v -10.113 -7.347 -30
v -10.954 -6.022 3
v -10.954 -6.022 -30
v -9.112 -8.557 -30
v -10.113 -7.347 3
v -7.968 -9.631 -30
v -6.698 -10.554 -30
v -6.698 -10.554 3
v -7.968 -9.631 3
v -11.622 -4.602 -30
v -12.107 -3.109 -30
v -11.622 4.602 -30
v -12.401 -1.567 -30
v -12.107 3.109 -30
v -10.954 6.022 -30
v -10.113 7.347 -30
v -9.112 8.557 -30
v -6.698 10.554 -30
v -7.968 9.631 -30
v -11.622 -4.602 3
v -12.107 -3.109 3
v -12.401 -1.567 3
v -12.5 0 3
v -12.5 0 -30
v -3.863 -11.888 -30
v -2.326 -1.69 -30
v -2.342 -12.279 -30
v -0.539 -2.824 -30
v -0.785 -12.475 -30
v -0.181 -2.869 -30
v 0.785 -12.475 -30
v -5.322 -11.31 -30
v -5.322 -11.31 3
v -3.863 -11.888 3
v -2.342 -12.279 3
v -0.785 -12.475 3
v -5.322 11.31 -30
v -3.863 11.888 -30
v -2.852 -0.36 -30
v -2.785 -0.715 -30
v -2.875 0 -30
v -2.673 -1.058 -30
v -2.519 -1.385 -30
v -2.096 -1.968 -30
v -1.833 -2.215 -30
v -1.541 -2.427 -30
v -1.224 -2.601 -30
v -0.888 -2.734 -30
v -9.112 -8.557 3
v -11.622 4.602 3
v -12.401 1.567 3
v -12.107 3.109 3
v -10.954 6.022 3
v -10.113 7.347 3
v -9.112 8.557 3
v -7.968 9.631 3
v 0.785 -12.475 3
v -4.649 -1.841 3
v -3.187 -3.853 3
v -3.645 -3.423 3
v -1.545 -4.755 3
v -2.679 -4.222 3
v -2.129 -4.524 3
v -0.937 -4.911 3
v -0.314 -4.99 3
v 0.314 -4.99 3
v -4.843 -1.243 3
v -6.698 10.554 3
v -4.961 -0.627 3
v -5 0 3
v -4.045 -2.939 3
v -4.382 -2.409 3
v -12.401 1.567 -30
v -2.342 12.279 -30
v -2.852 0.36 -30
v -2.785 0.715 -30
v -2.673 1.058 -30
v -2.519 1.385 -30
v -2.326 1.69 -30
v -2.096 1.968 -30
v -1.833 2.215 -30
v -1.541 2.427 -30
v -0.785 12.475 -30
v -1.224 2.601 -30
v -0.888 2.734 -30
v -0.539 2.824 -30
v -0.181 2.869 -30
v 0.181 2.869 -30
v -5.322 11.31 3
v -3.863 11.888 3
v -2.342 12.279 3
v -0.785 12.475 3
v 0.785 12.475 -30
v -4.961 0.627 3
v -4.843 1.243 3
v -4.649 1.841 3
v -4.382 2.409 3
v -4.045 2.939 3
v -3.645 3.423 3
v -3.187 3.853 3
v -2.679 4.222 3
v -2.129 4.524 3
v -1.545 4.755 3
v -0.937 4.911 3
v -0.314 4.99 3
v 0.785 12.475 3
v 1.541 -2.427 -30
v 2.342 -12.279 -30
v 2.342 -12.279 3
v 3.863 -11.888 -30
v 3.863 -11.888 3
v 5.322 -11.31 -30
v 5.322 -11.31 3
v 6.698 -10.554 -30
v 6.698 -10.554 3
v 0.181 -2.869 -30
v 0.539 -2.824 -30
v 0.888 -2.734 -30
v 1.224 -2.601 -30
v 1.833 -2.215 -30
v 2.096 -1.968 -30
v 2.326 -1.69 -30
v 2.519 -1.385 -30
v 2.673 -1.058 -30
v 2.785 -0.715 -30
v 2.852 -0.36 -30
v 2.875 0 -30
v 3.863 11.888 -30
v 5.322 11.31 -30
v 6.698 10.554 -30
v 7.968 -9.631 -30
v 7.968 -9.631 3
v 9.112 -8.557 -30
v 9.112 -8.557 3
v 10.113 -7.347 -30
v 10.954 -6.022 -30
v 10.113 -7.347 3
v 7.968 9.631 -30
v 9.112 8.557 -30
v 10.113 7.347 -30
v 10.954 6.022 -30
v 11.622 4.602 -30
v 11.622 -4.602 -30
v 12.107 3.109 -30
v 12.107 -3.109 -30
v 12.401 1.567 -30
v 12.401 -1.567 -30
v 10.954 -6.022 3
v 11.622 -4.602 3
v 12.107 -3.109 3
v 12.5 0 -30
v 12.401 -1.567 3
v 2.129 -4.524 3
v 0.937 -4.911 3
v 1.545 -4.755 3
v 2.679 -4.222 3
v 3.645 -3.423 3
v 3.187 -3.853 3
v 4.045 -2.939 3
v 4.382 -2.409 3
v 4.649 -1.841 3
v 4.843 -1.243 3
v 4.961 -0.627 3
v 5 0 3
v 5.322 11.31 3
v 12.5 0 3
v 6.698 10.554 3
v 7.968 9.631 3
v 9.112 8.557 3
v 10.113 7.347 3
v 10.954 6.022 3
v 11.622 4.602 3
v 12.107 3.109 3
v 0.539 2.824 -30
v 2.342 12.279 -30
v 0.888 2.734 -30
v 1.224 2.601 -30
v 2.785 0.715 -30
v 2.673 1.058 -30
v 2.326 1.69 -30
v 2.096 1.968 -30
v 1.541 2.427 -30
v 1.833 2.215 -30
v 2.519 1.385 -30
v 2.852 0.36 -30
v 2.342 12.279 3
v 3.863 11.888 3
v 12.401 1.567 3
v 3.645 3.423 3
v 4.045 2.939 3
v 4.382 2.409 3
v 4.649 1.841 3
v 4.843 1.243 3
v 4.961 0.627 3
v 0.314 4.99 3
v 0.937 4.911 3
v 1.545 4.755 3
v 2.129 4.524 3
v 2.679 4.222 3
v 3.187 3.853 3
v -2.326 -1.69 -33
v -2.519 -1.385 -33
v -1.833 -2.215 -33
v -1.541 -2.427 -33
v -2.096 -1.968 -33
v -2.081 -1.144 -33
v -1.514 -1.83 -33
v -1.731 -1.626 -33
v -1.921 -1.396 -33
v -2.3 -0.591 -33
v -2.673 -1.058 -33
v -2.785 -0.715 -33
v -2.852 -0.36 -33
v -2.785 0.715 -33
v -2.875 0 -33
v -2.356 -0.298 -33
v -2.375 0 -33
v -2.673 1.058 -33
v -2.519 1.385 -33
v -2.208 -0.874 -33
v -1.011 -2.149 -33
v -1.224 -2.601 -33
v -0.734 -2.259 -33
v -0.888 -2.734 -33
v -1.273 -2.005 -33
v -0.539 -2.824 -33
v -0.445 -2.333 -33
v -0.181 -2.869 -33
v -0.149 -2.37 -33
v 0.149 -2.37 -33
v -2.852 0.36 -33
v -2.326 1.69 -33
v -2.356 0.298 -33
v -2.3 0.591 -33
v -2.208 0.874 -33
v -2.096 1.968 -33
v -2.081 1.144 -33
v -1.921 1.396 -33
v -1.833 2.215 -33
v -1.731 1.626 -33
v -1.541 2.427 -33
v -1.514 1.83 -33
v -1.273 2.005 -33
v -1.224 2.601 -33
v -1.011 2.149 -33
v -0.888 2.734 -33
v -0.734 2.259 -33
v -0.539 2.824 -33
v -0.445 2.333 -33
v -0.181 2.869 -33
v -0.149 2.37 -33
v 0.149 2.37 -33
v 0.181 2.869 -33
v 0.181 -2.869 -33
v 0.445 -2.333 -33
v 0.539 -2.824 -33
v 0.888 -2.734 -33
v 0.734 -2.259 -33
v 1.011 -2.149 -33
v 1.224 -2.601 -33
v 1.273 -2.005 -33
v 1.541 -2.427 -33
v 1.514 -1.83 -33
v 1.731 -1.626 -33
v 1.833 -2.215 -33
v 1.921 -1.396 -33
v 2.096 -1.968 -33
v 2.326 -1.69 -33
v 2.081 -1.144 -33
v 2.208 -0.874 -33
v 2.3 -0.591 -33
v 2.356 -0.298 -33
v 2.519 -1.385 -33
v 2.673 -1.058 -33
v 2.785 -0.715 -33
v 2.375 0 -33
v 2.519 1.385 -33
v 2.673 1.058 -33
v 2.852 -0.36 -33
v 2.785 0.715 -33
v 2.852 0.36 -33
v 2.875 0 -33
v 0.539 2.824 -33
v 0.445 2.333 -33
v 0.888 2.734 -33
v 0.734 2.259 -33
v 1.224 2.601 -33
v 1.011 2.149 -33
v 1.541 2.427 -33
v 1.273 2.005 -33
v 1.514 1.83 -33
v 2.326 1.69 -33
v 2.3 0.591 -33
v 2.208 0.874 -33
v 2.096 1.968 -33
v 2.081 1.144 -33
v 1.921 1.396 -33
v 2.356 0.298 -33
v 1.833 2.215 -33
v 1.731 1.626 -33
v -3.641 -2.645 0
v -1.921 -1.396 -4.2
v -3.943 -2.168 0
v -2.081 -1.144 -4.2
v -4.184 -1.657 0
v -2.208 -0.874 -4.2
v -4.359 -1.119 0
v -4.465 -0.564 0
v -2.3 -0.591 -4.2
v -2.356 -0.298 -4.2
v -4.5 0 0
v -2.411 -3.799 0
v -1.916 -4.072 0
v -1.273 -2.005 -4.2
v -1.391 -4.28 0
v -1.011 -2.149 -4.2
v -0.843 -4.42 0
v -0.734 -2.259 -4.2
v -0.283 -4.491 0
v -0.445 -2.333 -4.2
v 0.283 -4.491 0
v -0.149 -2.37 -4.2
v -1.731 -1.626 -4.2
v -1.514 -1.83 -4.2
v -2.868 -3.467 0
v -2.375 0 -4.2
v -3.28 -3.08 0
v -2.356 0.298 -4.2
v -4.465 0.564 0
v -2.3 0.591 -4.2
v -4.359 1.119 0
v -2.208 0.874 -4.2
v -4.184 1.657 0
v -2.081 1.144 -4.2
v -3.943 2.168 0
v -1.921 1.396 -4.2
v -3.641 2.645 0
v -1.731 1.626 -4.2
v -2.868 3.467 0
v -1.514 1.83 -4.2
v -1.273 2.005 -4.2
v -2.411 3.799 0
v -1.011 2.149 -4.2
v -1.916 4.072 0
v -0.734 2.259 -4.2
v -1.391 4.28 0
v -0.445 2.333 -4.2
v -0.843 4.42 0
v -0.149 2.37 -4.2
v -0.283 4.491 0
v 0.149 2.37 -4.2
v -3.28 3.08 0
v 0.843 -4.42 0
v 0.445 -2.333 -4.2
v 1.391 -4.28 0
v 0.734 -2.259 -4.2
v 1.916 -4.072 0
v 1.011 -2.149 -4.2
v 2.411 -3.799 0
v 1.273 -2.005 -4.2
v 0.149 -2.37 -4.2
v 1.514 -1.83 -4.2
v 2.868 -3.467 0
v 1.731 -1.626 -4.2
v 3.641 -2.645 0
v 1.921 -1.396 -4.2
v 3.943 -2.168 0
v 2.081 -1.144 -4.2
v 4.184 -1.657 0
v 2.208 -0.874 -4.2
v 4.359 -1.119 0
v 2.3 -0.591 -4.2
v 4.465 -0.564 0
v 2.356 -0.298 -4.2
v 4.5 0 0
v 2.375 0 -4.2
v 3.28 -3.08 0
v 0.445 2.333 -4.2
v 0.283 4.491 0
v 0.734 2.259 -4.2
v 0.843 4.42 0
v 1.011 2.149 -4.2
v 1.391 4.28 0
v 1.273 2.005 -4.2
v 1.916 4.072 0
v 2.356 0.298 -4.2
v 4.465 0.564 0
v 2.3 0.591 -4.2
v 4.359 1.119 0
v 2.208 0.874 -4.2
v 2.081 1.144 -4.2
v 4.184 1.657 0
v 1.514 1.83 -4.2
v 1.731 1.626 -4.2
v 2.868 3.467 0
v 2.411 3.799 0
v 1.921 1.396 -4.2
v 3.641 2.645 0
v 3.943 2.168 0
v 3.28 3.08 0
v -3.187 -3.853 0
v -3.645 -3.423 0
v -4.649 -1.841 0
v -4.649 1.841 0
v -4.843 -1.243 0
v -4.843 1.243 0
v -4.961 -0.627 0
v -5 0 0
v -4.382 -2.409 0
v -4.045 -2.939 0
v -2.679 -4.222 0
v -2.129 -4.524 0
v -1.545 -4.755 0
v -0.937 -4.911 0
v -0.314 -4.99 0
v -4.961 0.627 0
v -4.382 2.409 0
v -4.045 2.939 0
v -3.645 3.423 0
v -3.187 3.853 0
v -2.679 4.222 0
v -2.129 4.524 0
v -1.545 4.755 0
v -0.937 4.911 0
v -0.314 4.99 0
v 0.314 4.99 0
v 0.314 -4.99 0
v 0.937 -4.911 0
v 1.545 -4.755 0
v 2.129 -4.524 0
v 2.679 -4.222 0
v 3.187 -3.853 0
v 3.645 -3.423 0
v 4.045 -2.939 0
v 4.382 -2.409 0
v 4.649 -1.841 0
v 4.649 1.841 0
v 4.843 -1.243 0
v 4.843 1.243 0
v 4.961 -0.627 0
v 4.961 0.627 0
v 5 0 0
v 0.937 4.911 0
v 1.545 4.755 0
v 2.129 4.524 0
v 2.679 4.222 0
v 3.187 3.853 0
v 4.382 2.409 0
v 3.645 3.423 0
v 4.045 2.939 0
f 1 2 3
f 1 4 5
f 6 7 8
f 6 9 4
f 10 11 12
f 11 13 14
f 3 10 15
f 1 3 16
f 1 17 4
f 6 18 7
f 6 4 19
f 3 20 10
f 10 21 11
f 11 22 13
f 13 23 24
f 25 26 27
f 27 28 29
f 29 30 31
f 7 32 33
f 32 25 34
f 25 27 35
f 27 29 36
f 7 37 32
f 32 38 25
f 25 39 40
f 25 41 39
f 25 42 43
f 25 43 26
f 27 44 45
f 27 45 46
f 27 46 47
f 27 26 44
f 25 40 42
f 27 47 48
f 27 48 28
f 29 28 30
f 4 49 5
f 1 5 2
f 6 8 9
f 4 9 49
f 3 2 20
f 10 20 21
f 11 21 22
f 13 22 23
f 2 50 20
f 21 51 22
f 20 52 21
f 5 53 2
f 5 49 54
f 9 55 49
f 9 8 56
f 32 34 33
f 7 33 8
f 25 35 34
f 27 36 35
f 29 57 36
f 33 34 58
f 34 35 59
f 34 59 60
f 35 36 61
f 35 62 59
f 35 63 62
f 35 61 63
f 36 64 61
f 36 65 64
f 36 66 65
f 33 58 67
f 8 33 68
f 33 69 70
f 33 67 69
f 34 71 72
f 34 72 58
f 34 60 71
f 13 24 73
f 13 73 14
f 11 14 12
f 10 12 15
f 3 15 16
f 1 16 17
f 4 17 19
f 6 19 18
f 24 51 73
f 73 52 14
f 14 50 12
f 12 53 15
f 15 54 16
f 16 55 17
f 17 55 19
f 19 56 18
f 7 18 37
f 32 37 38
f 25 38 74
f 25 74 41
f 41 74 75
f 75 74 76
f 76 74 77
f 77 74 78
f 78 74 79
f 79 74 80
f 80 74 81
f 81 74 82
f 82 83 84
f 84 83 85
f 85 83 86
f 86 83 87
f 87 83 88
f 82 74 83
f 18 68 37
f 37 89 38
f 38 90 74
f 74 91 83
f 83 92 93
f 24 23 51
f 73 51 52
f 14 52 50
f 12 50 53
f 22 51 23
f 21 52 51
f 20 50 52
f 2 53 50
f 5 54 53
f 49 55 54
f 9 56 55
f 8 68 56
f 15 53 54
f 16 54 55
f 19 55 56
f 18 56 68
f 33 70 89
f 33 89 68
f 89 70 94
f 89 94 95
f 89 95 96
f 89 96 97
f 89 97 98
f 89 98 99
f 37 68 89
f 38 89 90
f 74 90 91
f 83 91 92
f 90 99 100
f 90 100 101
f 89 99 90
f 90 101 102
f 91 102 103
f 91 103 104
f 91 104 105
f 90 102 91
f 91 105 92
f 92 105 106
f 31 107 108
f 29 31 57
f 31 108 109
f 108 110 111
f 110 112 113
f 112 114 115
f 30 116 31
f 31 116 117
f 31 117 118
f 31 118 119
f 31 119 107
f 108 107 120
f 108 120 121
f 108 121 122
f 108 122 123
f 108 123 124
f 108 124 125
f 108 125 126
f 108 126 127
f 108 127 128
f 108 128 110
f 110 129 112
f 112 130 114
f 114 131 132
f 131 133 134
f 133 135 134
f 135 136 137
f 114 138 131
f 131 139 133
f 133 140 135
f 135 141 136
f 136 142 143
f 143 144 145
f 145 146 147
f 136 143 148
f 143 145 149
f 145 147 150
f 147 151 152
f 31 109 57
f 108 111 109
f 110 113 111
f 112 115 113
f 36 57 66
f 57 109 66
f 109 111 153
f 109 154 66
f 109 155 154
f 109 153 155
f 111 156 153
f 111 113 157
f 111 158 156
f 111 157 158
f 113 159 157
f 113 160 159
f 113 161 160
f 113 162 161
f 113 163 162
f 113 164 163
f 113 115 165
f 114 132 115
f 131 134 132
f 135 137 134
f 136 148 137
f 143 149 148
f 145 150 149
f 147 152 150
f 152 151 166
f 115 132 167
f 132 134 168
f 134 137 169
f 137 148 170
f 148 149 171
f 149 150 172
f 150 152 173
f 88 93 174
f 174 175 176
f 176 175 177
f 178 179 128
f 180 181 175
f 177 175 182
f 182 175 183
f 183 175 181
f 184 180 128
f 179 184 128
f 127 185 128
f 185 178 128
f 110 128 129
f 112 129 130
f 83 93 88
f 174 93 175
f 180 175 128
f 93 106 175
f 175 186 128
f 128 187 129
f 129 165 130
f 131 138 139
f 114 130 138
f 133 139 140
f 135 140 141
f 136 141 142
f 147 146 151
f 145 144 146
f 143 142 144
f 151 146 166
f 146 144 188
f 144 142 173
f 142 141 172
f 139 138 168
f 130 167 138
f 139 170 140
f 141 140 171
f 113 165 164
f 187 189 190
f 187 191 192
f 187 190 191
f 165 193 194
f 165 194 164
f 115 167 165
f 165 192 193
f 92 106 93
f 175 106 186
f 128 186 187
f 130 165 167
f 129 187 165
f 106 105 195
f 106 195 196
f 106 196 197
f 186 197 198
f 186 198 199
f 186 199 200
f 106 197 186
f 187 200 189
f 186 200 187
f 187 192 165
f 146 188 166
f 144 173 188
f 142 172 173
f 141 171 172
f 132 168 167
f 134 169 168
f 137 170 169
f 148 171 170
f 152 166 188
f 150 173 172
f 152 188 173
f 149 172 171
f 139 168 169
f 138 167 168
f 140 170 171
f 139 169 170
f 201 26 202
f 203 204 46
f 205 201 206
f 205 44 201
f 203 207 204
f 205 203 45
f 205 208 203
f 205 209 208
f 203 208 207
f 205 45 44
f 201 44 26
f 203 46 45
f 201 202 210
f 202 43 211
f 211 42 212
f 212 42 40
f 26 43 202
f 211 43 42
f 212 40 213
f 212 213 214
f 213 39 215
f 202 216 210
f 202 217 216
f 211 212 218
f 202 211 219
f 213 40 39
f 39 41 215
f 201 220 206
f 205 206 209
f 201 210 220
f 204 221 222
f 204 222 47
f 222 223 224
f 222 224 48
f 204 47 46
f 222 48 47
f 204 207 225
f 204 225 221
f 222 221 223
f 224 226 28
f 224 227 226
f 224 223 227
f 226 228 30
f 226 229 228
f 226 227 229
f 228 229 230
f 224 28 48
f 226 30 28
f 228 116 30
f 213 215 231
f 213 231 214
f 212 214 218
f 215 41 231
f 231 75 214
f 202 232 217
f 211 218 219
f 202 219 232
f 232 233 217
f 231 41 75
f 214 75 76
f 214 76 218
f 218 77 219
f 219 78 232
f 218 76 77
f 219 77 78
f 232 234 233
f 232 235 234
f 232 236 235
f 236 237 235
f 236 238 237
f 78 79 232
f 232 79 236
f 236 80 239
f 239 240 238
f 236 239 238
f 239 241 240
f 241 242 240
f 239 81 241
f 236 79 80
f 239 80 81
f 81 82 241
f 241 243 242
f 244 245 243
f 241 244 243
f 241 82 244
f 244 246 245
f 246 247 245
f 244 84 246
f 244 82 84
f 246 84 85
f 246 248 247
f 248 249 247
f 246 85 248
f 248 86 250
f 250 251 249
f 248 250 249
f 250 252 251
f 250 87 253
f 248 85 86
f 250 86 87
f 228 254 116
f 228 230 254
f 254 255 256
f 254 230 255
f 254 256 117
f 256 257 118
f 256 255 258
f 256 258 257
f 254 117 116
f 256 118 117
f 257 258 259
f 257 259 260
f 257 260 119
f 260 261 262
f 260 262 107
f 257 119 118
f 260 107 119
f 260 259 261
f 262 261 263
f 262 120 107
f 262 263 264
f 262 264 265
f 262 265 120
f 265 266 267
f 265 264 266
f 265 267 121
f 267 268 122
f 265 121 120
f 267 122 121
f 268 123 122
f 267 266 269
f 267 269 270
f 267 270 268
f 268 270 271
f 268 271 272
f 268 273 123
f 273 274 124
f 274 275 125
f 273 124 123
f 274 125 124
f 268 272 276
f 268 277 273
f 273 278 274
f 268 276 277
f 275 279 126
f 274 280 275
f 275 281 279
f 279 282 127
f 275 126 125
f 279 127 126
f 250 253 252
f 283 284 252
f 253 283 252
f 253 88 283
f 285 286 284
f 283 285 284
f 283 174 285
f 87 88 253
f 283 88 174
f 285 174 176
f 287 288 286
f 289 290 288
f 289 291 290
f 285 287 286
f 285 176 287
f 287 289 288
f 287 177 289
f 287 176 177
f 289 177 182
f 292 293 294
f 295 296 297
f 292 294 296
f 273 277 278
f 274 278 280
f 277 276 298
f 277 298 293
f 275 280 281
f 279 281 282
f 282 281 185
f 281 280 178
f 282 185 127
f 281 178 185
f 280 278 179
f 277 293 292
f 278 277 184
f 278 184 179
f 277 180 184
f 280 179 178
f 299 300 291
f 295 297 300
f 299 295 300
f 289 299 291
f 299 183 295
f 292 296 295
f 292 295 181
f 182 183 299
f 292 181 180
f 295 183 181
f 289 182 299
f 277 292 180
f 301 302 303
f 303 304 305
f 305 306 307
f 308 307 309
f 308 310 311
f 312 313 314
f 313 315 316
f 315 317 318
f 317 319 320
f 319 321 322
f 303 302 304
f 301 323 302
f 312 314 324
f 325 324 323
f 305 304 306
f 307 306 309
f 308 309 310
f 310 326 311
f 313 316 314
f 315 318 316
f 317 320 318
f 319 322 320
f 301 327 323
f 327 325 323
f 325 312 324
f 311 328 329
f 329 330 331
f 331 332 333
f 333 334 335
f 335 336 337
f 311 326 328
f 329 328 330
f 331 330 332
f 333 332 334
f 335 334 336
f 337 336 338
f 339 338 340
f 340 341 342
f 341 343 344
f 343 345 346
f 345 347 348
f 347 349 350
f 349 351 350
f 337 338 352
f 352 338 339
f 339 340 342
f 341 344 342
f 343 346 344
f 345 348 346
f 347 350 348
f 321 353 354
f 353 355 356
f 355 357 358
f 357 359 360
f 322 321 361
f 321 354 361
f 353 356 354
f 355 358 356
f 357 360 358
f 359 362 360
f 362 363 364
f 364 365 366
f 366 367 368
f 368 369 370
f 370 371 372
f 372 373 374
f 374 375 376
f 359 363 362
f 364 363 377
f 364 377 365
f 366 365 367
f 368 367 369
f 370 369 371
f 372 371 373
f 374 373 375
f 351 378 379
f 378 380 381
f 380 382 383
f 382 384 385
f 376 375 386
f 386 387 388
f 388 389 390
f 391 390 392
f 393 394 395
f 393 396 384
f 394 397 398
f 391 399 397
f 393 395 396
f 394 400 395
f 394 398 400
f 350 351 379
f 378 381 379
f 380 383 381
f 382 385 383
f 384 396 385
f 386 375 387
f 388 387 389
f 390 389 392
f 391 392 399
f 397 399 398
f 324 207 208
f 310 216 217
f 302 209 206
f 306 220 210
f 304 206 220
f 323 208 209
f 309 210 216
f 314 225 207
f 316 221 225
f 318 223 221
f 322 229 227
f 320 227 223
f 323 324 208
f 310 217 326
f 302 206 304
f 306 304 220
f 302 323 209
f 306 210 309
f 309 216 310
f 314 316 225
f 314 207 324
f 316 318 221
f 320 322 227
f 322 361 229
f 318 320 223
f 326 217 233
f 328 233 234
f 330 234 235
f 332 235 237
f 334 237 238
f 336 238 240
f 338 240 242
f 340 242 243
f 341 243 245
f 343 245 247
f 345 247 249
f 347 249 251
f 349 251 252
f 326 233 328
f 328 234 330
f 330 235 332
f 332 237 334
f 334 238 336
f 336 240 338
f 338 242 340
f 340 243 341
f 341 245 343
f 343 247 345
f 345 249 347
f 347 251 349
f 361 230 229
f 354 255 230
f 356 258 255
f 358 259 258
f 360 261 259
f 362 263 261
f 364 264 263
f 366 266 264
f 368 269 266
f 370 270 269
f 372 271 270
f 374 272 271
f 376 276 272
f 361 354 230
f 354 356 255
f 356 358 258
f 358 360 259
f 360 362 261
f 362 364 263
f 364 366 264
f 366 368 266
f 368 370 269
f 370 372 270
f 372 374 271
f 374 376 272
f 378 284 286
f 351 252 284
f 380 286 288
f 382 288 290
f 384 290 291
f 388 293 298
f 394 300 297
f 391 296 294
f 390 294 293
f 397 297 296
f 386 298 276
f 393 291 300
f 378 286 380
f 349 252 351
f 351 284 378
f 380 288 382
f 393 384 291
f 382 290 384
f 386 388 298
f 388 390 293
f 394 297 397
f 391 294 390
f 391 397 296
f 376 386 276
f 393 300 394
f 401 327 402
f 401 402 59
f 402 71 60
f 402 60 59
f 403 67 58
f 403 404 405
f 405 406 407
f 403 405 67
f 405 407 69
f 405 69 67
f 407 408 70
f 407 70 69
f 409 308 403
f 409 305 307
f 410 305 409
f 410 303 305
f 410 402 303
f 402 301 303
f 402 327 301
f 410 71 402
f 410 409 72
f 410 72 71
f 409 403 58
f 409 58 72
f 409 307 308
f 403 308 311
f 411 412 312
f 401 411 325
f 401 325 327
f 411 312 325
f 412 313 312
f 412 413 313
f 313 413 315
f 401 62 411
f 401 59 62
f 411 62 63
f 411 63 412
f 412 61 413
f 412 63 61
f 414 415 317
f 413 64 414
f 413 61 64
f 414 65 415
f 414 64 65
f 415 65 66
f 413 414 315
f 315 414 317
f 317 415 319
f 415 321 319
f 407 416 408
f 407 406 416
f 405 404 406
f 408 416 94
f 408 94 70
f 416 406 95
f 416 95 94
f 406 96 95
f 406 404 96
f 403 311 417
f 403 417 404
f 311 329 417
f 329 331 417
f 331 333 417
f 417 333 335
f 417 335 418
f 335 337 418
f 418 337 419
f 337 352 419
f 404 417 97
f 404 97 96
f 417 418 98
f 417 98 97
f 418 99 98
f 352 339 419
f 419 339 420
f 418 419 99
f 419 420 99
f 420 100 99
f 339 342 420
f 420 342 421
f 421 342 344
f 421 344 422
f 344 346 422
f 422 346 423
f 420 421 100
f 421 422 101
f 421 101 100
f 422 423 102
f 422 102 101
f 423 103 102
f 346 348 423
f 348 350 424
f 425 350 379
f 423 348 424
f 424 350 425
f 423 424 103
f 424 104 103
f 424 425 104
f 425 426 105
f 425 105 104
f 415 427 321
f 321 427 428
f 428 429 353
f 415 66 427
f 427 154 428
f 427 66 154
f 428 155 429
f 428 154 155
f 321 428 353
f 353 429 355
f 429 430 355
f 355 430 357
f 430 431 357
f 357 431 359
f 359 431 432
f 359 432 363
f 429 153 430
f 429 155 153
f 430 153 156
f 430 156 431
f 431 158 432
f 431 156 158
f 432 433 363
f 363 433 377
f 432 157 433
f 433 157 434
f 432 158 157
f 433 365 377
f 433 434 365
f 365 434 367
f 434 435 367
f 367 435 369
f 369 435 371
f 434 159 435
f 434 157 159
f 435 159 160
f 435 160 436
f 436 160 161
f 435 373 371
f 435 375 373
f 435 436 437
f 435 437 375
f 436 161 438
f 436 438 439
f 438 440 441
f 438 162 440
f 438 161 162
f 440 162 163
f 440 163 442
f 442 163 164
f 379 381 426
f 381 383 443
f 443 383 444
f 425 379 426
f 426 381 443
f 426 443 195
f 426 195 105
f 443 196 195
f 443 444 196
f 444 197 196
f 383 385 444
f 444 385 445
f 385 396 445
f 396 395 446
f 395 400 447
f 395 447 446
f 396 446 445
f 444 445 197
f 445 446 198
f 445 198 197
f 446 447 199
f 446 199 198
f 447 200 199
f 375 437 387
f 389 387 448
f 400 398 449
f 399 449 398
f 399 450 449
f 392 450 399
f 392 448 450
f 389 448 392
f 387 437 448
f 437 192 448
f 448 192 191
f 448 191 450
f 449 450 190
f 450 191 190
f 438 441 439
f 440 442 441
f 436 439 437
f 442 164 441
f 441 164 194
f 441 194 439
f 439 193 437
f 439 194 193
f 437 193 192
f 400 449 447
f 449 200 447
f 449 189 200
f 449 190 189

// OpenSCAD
$fn = 50;

difference() {
	union() {
		translate(v = [0, 0, -30.0]) {
			cylinder(h = 33, r = 12.5);
		}
		#translate(v = [0, 0, -33.0]) {
			cylinder(h = 33, r = 2.875);
		}
	}
	union() {
		translate(v = [0, 0, 0]) {
			rotate(a = [0, 0, 0]) {
				difference() {
					union() {
						translate(v = [0, 0, -33.0]) {
							cylinder(h = 33, r = 2.25);
						}
						translate(v = [0, 0, -4.2]) {
							cylinder(h = 4.2, r1 = 2.375, r2 = 4.5);
						}
						translate(v = [0, 0, -33.0]) {
							cylinder(h = 33, r = 2.375);
						}
						translate(v = [0, 0, -33.0]) {
							cylinder(h = 33, r = 2.25);
						}
					}
					union();
				}
			}
		}
		#cylinder(h = 3, r = 5.0);
	}
}
